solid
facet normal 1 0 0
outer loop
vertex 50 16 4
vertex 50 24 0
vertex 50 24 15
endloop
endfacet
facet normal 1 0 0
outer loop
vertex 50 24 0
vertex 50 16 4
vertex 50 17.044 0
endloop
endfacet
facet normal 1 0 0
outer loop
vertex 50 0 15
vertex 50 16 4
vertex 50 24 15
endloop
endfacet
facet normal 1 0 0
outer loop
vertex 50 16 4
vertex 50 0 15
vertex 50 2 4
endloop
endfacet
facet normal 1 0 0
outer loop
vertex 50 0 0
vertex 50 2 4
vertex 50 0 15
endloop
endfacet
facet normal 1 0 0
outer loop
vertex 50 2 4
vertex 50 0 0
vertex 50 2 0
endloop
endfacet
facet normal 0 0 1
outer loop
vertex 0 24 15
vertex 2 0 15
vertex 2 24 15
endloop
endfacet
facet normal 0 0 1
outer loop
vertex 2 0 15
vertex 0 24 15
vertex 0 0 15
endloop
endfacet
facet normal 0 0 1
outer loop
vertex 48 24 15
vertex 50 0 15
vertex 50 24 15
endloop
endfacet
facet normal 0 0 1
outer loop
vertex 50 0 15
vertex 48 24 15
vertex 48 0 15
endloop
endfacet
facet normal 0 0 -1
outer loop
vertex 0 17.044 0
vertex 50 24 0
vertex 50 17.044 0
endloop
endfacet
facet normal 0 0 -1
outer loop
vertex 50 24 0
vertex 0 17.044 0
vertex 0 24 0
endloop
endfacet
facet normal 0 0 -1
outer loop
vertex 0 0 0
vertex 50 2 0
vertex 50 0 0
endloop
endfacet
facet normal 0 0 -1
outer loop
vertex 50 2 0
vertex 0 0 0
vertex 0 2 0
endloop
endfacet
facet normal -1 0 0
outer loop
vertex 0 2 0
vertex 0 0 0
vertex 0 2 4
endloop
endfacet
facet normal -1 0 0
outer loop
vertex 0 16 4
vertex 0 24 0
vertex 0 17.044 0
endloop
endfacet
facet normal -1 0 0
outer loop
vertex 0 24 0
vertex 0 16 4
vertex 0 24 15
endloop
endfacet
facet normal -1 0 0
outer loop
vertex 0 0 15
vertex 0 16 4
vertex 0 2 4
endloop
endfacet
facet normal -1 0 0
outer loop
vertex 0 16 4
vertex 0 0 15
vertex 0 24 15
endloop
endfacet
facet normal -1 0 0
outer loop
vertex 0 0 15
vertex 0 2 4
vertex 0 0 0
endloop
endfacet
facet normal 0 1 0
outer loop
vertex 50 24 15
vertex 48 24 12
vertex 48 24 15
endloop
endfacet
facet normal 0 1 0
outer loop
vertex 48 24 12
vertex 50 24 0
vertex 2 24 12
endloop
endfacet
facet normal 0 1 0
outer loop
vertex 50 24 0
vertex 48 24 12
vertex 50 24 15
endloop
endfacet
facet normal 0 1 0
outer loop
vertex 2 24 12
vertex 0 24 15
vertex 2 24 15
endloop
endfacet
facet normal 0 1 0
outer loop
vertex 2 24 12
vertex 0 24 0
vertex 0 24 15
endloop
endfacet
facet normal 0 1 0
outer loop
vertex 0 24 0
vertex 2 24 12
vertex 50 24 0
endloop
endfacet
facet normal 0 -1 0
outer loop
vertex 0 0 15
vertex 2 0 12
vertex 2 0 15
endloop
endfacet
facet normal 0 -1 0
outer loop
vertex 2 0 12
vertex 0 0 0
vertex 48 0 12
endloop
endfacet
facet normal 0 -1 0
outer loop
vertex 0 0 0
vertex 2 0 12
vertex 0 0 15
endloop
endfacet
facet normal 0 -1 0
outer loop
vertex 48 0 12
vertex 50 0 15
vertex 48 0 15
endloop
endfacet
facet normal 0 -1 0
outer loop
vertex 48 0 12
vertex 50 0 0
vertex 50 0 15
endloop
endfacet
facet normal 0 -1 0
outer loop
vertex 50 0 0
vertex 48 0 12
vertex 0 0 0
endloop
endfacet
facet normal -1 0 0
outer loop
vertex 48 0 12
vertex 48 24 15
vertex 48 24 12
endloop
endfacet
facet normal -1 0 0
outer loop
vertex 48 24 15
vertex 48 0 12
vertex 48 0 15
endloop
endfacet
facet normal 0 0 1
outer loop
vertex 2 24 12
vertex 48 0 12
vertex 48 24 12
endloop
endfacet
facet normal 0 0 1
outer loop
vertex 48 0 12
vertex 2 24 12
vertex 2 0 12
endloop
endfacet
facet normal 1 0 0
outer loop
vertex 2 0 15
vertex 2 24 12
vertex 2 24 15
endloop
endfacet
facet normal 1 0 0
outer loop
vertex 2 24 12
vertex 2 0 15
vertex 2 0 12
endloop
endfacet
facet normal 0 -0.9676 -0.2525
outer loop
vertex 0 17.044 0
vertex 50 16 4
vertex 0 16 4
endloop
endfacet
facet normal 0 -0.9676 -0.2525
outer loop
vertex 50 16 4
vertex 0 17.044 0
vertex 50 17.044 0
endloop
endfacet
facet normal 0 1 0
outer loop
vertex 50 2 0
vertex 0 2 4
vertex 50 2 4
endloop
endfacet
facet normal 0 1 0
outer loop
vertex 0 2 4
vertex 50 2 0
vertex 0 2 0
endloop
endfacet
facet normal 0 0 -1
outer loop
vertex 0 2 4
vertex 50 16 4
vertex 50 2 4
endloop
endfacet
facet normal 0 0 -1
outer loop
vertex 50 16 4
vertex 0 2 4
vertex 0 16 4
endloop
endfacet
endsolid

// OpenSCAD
d=24;
t=14;
b=20;
h=23;
z=-(23-4);
y=2;

difference(){
    cube([50, d, 15]);
    translate([2, -5, 12]) cube([46, d+10, 5]);
    translate([-2, 0, 0])
        rotate([90, 0 ,90])
            #linear_extrude(height=54)
                polygon([[y, z], [y, z+h], [y+t, z+h], [y+b, z]]);
}
